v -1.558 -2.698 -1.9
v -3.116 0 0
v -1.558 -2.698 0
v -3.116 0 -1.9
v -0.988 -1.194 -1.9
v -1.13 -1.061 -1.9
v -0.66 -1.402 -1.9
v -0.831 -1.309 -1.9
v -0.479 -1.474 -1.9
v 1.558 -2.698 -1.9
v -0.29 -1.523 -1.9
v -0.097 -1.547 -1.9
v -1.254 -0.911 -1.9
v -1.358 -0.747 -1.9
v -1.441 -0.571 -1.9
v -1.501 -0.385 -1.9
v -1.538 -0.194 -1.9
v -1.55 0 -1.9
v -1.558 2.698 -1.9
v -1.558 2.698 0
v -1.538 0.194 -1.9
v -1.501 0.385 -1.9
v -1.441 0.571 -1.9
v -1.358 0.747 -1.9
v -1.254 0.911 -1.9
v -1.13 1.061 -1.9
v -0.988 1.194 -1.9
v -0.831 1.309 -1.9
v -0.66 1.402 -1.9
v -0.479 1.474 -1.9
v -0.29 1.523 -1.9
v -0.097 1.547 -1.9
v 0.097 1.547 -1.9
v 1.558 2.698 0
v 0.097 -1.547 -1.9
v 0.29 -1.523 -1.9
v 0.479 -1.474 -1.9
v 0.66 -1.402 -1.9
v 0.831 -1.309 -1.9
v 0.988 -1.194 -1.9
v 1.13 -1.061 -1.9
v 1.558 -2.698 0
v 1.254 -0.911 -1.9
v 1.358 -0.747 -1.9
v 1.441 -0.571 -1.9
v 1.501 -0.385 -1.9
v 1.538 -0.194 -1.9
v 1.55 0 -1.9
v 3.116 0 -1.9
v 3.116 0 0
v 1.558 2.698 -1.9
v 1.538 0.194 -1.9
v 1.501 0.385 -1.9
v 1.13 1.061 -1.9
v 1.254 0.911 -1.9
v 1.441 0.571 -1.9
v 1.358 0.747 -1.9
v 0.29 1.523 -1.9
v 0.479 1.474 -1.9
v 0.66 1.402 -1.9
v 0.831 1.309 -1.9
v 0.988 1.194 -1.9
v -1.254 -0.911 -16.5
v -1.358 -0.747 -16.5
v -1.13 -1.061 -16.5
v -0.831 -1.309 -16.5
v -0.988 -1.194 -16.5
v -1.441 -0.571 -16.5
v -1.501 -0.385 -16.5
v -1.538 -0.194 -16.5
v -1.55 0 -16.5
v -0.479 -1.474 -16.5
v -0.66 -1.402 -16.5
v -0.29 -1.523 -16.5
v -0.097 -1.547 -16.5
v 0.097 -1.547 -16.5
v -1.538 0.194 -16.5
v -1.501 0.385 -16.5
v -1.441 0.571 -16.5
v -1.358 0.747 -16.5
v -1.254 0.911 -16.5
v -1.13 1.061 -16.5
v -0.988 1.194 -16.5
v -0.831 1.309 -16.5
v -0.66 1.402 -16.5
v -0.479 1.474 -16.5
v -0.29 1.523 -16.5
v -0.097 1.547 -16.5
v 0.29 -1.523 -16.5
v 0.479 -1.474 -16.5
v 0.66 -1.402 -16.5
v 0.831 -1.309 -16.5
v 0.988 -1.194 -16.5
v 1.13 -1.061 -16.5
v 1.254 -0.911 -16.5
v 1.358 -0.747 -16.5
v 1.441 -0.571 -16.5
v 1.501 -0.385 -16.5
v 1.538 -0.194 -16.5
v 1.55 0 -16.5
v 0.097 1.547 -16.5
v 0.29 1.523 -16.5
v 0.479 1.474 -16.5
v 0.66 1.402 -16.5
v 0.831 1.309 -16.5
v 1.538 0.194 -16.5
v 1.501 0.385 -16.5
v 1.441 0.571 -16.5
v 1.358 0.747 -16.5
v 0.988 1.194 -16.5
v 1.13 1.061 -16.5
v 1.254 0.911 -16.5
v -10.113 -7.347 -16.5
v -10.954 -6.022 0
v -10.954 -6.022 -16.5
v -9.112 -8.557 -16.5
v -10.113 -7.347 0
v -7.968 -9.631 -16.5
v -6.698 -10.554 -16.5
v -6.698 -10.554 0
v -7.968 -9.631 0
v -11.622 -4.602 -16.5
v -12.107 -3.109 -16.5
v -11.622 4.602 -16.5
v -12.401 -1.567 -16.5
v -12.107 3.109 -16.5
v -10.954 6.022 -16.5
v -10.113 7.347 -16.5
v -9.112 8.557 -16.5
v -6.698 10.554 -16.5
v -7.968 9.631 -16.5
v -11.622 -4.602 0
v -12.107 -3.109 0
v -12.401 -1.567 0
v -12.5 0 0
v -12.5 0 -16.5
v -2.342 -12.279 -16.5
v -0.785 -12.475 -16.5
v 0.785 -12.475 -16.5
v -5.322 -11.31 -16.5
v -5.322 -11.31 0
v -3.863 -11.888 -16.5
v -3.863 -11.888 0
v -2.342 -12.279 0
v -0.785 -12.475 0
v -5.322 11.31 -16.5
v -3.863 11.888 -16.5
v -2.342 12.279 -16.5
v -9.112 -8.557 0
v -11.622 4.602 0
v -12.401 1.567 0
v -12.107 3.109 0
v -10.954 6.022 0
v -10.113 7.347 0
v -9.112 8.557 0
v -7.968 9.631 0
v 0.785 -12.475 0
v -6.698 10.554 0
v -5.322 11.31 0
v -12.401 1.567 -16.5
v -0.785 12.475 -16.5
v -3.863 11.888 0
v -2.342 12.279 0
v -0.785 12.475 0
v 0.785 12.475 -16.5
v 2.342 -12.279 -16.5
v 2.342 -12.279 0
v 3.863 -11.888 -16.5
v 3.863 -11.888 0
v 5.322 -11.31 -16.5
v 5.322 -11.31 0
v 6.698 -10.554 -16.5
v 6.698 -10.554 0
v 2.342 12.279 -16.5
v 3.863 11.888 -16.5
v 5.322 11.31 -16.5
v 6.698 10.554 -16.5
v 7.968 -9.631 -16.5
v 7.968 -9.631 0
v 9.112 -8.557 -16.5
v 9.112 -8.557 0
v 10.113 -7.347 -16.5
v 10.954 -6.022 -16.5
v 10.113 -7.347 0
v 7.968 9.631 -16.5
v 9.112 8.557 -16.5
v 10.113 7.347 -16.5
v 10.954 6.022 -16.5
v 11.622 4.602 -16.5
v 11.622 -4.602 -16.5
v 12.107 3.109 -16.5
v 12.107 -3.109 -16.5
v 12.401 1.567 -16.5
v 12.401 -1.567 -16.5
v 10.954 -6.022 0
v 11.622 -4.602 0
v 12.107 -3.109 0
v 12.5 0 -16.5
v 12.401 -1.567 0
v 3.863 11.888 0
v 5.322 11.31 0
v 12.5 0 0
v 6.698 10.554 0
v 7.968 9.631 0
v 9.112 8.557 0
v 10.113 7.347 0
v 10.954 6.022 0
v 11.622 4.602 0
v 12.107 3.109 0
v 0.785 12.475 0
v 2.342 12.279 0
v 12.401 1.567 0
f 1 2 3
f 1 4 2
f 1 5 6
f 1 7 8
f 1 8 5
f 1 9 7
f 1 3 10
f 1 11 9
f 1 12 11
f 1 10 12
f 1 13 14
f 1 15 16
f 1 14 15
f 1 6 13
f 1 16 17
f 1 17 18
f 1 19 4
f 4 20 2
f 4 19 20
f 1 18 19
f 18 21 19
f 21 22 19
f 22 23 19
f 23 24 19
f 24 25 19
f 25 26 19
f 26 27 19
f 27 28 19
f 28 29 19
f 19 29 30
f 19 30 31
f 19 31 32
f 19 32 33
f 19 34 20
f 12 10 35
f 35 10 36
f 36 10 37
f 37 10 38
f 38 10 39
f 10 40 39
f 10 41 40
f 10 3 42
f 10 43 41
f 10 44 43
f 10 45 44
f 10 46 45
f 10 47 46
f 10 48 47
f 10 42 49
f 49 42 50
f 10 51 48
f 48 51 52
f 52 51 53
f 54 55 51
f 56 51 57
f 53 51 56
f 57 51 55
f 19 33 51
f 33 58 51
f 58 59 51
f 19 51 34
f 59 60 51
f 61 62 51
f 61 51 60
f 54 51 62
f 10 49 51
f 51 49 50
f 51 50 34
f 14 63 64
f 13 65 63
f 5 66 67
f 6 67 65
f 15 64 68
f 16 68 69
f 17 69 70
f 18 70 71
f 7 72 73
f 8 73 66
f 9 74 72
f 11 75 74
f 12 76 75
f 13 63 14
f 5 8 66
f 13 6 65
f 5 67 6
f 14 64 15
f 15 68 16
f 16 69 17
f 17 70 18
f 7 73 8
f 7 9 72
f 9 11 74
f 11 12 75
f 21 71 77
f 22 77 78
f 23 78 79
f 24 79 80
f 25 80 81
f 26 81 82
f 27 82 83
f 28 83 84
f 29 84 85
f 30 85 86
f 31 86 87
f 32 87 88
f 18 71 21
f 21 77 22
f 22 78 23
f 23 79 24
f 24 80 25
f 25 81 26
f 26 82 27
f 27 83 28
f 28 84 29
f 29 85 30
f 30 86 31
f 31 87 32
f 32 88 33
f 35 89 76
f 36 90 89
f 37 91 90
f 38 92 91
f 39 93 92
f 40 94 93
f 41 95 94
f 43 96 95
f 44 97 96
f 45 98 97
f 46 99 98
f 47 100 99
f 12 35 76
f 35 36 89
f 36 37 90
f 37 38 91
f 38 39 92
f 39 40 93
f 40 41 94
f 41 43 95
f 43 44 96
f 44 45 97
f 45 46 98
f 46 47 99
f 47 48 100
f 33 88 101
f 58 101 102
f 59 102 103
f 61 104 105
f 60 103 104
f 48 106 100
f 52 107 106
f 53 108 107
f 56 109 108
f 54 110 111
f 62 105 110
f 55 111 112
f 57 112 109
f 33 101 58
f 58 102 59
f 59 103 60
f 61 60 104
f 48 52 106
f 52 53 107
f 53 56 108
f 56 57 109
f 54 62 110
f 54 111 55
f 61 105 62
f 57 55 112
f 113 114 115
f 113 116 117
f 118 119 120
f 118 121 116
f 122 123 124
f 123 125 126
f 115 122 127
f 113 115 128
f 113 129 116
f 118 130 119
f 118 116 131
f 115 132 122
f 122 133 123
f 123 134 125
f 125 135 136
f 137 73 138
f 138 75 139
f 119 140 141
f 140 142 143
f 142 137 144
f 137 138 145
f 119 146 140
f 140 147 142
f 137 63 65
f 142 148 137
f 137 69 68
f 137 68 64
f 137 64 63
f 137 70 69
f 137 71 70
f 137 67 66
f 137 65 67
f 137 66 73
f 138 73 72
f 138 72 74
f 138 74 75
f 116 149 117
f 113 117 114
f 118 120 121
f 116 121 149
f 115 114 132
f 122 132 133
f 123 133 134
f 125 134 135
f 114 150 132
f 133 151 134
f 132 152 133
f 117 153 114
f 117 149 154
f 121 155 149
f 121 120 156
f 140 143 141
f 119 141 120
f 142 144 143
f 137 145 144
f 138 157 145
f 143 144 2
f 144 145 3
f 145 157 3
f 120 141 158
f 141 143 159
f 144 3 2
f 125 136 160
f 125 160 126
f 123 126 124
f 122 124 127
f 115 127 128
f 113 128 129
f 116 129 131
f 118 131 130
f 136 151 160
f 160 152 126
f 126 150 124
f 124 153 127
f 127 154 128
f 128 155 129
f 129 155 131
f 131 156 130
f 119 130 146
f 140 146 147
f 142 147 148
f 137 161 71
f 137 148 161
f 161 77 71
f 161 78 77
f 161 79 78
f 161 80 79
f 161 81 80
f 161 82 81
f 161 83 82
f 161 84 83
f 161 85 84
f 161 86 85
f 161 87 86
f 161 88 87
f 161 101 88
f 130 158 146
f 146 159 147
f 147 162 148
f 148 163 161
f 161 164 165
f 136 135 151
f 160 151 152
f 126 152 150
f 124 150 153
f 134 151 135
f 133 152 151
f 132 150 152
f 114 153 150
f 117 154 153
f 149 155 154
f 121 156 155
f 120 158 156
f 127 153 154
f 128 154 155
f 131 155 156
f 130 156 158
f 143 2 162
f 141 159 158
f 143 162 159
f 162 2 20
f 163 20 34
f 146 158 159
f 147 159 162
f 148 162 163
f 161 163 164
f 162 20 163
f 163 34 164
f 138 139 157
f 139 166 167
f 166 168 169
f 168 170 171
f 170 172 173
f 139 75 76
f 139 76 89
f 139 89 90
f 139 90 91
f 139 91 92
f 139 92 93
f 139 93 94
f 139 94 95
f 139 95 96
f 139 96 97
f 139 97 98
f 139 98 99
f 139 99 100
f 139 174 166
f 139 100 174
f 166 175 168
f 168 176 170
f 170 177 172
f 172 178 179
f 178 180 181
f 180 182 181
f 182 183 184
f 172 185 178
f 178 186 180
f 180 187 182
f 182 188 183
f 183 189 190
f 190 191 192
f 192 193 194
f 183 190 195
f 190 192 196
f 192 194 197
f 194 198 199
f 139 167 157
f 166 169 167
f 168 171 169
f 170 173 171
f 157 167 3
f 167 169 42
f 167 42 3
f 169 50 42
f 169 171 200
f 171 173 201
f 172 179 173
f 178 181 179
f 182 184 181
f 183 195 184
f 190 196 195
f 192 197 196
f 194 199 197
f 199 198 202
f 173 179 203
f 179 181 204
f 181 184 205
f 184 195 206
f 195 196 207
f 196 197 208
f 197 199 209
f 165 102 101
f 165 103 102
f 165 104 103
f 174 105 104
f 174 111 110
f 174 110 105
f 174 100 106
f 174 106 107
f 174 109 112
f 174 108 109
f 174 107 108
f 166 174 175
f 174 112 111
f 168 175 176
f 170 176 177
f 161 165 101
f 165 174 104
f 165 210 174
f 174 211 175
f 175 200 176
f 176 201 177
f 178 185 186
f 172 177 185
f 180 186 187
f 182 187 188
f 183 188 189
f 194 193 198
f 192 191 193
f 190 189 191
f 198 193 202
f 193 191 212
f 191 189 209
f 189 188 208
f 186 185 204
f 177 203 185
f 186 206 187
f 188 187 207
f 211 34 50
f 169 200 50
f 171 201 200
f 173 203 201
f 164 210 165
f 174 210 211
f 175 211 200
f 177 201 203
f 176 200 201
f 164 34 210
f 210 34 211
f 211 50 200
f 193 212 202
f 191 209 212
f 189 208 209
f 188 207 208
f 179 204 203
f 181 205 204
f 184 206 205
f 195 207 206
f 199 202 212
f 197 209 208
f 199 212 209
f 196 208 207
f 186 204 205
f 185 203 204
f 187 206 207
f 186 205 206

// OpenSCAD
$fn = 50;

difference() {
	union() {
		translate(v = [0, 0, -16.5]) {
			cylinder(h = 16.5, r = 12.5);
		}
	}
	union() {
		translate(v = [0, 0, 0]) {
			rotate(a = [0, 0, 0]) {
				difference() {
					union() {
						translate(v = [0, 0, -1.9]) {
							linear_extrude(height = 1.9) {
								polygon(points = [[3.1158, 0.0], [1.5579000000000005, 2.698361953111554], [-1.5578999999999994, 2.6983619531115544], [-3.1158, 3.815754496783323e-16], [-1.5579000000000014, -2.6983619531115535], [1.557899999999998, -2.6983619531115552]]);
							}
						}
					}
					union();
				}
			}
		}
		#translate(v = [0, 0, -100.0]) {
			cylinder(h = 200, r = 1.55);
		}
	}
}
